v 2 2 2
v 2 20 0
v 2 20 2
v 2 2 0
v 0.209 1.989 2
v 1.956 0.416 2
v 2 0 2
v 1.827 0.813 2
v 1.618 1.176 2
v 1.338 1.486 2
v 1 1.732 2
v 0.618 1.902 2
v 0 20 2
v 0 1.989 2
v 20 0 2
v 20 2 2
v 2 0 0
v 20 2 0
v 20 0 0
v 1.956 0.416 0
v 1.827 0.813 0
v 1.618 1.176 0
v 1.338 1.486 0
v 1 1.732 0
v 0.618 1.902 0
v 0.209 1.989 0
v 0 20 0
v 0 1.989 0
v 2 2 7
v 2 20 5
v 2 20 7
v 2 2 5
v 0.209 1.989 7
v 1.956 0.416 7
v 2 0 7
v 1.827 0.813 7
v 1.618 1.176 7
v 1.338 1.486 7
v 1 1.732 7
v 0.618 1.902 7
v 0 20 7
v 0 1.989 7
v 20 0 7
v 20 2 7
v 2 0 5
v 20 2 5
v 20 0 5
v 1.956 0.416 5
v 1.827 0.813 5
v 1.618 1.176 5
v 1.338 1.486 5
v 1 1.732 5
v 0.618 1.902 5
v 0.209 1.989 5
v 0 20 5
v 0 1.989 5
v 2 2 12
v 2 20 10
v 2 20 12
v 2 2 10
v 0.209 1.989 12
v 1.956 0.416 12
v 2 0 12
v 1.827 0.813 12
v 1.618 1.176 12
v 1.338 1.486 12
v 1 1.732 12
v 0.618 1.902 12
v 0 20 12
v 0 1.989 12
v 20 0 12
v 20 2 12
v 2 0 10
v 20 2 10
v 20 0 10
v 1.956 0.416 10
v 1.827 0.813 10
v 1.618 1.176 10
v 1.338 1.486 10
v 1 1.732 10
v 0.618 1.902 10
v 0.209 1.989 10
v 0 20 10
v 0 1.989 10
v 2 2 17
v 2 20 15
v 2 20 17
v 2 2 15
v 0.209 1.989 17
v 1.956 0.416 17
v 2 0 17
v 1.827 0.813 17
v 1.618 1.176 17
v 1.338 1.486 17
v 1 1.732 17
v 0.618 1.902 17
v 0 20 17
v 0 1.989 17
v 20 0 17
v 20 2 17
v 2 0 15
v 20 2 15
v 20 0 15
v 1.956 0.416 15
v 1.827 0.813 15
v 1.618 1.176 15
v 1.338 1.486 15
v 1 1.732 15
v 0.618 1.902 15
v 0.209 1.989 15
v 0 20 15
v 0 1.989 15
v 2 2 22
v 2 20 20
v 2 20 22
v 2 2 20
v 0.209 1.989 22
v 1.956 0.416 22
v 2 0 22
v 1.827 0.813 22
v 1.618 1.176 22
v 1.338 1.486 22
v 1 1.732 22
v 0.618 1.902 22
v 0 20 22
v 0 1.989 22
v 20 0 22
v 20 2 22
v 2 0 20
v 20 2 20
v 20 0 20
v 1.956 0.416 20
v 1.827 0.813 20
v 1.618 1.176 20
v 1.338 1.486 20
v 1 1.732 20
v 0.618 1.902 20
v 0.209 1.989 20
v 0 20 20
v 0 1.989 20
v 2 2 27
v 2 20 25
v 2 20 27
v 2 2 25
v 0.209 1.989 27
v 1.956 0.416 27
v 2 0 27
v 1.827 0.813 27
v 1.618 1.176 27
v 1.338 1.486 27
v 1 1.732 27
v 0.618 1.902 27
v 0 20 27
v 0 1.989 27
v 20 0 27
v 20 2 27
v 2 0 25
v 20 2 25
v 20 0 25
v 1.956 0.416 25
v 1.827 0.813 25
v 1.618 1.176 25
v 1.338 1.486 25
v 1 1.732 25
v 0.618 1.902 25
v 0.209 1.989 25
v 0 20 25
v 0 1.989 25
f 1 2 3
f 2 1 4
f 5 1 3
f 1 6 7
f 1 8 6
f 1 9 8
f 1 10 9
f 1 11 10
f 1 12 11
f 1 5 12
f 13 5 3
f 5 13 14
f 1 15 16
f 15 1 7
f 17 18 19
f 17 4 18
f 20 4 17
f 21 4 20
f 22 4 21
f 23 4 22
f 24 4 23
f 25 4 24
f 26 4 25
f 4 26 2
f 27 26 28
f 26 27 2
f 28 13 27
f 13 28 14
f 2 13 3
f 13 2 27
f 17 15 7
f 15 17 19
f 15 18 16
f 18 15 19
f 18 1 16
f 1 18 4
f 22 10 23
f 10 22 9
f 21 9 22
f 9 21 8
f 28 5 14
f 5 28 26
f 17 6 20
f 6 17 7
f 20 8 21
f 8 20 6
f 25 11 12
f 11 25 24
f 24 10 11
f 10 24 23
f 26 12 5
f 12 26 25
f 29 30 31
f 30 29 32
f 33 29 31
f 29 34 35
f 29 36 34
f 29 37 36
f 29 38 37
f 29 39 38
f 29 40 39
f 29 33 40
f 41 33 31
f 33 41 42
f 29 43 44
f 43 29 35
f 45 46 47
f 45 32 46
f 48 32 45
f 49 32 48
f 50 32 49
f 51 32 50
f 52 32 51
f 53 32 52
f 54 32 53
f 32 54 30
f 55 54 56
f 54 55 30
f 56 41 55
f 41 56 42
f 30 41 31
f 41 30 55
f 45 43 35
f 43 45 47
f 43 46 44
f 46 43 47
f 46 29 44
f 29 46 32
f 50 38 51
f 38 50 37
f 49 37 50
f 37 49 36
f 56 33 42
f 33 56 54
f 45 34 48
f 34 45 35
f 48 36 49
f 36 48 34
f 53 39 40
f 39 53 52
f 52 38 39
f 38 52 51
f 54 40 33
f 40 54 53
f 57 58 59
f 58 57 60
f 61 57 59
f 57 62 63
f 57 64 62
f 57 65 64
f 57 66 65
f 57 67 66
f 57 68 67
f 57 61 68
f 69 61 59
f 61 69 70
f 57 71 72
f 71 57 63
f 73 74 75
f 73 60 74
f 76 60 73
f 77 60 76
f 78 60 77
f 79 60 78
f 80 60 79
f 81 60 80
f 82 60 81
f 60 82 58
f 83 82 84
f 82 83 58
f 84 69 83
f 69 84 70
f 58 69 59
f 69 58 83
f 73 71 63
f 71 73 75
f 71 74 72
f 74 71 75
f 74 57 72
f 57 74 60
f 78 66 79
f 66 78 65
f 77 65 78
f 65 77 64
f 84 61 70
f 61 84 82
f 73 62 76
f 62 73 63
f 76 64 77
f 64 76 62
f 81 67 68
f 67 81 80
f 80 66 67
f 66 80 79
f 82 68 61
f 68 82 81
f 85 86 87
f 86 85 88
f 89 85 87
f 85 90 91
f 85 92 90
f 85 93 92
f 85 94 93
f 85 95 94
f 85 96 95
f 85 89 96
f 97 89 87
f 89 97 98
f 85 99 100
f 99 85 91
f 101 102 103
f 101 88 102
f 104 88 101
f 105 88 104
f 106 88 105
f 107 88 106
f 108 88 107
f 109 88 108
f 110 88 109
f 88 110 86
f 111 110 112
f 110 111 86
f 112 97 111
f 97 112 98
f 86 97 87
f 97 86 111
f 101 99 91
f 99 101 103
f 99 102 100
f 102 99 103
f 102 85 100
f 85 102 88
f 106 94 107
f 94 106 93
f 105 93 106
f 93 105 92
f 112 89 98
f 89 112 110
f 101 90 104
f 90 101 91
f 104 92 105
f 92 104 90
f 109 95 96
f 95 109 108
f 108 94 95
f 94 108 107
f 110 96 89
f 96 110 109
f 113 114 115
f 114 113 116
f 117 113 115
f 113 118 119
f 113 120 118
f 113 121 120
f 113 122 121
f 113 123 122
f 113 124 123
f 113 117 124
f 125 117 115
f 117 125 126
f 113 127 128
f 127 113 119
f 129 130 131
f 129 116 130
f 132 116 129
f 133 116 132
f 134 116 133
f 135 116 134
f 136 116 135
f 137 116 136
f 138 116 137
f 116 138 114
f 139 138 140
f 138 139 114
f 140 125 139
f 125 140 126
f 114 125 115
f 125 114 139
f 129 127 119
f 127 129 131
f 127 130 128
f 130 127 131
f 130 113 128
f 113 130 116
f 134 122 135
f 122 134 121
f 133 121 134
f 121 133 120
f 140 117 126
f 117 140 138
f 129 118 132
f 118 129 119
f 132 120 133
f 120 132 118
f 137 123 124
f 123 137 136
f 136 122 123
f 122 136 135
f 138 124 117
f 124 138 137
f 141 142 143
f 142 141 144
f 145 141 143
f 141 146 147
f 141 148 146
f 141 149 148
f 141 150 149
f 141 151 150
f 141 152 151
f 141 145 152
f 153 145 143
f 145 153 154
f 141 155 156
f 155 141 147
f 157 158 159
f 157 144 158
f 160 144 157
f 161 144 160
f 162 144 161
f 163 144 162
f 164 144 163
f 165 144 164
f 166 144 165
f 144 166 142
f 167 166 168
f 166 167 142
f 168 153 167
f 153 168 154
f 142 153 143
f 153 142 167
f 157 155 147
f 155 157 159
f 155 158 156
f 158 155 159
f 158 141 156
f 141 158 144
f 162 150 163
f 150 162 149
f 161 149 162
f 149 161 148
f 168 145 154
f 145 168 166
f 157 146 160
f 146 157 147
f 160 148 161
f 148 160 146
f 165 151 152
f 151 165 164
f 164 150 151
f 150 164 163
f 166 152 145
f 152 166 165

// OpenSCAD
// Module to create a single L-bracket
module L_bracket() {
    difference() {
        union() {
            cube([2, 20, 2]); // vertical arm
            cube([20, 2, 2]); // horizontal arm
        }
        // Cut the inner corner to make it rounded
        translate([0, 0, 0])
            cylinder(h=2, r=2, $fn=30);
    }
}

// Stack of 6 L-brackets
for (i = [0:5]) {
    translate([0, 0, i * 5])
        L_bracket();
}
